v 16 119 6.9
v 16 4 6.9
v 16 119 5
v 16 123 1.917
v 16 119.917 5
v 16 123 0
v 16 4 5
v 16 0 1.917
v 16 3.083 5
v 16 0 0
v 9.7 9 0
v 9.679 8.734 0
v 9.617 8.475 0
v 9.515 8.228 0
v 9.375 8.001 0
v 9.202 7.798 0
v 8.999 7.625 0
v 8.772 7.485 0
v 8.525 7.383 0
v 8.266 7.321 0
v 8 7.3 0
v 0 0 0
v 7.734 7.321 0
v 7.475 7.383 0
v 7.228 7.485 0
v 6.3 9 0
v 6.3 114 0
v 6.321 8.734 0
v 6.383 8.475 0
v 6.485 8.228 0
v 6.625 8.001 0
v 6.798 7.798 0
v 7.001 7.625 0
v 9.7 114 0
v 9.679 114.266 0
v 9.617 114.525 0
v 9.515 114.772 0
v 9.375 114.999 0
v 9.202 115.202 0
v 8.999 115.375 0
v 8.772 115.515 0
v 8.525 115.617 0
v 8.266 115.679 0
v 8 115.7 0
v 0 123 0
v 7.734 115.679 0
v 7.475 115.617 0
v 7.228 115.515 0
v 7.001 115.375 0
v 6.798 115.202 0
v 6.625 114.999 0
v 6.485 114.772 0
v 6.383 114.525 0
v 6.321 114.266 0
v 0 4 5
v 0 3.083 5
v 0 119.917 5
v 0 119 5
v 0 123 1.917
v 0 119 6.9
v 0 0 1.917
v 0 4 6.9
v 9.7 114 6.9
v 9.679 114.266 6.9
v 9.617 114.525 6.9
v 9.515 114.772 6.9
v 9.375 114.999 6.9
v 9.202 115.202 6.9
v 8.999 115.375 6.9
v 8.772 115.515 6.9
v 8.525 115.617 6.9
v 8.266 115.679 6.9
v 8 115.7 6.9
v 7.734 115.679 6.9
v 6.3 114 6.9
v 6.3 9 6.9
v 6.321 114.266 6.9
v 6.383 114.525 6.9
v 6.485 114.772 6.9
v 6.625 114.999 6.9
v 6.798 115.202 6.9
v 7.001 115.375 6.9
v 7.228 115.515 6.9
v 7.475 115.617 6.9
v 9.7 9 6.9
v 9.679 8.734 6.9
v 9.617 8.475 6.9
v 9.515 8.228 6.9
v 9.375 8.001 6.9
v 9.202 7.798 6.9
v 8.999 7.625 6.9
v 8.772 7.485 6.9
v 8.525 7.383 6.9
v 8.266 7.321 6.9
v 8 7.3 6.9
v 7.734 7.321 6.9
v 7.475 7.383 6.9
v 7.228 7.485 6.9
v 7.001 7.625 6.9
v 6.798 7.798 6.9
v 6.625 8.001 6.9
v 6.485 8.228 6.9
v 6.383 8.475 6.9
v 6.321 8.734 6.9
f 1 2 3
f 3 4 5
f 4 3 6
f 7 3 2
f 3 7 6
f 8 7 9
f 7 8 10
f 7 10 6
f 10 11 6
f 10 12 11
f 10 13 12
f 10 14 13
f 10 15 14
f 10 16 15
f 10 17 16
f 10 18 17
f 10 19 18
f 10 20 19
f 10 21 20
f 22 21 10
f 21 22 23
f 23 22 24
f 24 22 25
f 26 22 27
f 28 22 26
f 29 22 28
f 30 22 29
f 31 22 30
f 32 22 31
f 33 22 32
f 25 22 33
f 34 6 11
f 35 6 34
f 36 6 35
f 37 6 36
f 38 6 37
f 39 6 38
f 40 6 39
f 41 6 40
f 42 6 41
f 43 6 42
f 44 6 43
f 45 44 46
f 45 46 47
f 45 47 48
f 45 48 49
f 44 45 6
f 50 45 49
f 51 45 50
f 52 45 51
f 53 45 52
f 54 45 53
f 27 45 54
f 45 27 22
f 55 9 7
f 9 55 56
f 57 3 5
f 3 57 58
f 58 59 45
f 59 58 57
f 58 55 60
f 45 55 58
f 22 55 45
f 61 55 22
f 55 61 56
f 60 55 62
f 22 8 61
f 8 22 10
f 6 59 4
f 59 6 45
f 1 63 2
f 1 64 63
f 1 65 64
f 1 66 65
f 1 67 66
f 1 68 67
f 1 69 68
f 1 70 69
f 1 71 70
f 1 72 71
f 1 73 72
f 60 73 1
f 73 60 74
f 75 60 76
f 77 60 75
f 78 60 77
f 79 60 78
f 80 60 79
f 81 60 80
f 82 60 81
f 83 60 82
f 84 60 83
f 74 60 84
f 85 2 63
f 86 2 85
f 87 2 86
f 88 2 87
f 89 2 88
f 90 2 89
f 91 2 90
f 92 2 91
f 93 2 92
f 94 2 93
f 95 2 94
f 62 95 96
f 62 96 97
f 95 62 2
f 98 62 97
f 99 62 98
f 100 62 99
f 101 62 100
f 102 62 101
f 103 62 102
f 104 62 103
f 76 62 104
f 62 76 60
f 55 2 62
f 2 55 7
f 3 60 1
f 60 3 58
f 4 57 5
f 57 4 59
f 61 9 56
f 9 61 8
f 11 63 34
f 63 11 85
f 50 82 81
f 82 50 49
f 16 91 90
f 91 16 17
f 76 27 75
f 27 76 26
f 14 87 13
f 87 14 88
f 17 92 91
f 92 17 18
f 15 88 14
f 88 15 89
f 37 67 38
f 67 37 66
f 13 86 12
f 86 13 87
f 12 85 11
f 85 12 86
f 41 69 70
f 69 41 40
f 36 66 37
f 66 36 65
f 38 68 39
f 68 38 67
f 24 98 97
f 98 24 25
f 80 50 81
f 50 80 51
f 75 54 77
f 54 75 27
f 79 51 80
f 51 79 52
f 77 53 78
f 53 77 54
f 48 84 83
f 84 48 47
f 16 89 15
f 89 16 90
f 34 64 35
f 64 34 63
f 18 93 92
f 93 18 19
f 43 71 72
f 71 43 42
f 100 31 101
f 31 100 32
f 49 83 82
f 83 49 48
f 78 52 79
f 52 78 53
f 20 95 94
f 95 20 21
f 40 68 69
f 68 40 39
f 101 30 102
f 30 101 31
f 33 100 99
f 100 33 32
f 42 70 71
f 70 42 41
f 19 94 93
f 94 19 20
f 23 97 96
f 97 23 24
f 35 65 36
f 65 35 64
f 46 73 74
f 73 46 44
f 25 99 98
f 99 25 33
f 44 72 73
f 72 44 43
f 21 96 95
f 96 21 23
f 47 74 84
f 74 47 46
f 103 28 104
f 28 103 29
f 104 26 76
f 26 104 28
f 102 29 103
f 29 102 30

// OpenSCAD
// TailWatch S3 enclosure -- strap
// Rear strap. Print one per entry in strap_xs (default 2). Flat face down.
// Exported in print orientation; no supports needed.
include <tailwatch_lib.scad>
run_checks();
strap_print();
